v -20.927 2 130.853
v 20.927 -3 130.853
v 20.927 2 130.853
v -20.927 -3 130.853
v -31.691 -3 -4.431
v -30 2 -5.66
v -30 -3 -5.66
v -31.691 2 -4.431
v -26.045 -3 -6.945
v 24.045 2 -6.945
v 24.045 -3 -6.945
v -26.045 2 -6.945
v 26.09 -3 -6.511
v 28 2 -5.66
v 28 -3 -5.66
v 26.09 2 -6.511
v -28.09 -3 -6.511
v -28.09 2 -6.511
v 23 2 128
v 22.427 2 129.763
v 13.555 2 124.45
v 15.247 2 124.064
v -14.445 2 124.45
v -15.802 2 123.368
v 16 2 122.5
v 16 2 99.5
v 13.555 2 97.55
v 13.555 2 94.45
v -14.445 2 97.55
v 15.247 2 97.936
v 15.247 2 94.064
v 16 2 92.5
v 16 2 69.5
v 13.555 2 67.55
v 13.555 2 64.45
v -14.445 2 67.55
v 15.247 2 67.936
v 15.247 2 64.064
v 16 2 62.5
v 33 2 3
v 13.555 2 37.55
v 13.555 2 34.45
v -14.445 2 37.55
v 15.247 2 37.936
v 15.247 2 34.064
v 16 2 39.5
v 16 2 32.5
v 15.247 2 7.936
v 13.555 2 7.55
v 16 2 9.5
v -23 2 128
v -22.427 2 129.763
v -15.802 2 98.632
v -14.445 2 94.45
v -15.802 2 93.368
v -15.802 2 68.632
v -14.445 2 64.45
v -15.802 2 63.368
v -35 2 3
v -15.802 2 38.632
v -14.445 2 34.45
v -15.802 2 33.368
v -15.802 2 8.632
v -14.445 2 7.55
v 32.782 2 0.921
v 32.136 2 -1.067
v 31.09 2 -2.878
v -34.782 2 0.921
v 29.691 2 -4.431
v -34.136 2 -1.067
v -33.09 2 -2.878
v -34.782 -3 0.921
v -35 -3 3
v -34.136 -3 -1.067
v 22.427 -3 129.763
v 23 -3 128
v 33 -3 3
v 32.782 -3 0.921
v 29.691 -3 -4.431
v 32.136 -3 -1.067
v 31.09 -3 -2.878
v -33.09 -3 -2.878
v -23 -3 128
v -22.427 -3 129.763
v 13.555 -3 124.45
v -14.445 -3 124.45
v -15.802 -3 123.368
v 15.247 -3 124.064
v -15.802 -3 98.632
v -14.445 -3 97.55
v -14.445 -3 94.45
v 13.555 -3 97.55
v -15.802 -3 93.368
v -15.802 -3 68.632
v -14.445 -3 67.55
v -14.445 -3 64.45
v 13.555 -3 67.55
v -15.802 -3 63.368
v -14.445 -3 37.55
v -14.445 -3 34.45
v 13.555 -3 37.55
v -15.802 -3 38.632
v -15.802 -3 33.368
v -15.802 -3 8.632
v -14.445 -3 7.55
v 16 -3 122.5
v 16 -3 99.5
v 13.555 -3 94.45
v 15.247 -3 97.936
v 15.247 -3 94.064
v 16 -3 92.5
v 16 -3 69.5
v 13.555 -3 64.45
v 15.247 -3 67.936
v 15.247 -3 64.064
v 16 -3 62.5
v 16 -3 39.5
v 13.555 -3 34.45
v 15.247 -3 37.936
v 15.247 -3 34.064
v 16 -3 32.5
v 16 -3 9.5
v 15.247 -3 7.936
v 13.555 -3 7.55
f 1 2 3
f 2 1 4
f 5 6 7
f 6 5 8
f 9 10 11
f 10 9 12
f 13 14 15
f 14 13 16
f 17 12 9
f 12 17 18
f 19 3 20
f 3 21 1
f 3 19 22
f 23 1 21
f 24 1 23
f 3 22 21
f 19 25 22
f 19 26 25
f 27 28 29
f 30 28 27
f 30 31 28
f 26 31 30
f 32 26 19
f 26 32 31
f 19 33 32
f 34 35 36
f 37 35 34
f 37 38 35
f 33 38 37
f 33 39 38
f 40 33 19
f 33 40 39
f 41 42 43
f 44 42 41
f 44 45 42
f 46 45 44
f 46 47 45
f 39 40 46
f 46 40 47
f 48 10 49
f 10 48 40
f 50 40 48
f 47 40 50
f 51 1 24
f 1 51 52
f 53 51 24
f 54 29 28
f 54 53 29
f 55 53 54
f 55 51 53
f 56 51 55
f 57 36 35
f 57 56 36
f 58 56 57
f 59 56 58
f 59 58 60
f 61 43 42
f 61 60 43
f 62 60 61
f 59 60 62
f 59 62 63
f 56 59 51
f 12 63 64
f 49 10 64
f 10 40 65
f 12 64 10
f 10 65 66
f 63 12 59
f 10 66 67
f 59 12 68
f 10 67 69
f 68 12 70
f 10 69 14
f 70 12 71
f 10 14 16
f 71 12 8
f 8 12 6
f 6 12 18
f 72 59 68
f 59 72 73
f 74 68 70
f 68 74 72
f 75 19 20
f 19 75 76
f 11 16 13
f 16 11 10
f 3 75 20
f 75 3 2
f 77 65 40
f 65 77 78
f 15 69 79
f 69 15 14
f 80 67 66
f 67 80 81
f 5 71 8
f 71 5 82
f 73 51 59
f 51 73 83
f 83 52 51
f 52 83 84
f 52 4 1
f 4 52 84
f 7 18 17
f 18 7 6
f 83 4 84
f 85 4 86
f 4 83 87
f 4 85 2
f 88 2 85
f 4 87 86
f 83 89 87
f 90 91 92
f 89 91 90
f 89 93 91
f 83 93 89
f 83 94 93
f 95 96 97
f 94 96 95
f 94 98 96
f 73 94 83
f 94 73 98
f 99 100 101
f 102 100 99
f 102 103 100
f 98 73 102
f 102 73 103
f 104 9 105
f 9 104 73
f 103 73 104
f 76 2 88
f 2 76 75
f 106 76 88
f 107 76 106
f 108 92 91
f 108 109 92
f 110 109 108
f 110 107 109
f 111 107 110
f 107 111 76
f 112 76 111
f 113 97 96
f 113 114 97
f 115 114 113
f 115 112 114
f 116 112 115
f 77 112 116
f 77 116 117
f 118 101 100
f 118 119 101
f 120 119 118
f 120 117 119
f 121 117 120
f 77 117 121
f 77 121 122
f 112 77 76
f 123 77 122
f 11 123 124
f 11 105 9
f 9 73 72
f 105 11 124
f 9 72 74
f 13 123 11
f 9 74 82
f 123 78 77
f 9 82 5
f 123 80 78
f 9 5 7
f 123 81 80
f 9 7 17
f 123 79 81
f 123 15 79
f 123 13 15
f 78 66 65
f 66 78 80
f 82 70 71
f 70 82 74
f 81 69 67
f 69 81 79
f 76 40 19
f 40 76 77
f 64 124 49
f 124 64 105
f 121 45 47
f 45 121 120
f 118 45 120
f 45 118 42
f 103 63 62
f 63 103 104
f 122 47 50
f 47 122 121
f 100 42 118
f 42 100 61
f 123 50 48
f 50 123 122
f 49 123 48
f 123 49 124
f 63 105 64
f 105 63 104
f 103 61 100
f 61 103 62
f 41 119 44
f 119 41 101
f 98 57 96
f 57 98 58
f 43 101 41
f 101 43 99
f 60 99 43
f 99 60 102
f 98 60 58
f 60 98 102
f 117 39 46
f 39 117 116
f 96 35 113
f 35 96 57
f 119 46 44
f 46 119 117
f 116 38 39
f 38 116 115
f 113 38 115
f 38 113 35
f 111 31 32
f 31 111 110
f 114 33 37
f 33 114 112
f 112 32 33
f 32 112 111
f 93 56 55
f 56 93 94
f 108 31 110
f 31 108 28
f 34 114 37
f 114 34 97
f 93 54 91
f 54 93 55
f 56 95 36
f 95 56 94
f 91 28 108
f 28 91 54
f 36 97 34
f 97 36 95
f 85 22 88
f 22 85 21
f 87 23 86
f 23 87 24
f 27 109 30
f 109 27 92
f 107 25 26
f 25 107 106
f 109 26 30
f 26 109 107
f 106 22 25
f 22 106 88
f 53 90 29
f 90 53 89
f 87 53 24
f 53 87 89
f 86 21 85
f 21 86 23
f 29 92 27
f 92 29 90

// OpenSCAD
framewidth = 5;
holeheight = 25;
holewidth = 30;
holenumber = 4;
holerad = 2;
plateheight = (holenumber+1)*holeheight;
platewidth = holewidth + 2*framewidth;
platethi = 4;
minkowskirad = 3;
minkowskithi = 1;
translate([-framewidth-holewidth/2,-platethi/2,minkowskirad])
difference()
{
    minkowski()
    {
        baseplate();
    }
    minkowski()
    {
        translate([framewidth+holerad/2,-2,framewidth+minkowskirad/2]) cube([holewidth-holerad,platethi+3,holeheight-holerad]);
        rotate([90,0,0]) cylinder(r=holerad,h=1);
    }
    minkowski()
    {
        translate([framewidth+holerad/2,-2,framewidth*2+holeheight+minkowskirad/2]) cube([holewidth-holerad,platethi+3,holeheight-holerad]);
        rotate([90,0,0]) cylinder(r=holerad,h=1);
    }
    minkowski()
    {
        translate([framewidth+holerad/2,-2,framewidth*3+holeheight*2+minkowskirad/2]) cube([holewidth-holerad,platethi+3,holeheight-holerad]);
        rotate([90,0,0]) cylinder(r=holerad,h=1);
    }
    minkowski()
    {
        translate([framewidth+holerad/2,-2,framewidth*4+holeheight*3+minkowskirad/2]) cube([holewidth-holerad,platethi+3,holeheight-holerad]);
        rotate([90,0,0]) cylinder(r=holerad,h=1);
    }  
}

module baseplate()
{
    hull()
    {
        minkowski()
        {
            cube([platewidth, platethi, plateheight]);
            rotate([90,0,0]) cylinder(r=minkowskirad,h=1);
        }
        translate([-5,platethi,0]) rotate([90,0,0]) cylinder(r=10, h=platethi+minkowskithi);
        translate([holewidth+minkowskirad+5+framewidth,platethi,0]) rotate([90,0,0]) cylinder(r=10, h=platethi+minkowskithi);
    }
}
